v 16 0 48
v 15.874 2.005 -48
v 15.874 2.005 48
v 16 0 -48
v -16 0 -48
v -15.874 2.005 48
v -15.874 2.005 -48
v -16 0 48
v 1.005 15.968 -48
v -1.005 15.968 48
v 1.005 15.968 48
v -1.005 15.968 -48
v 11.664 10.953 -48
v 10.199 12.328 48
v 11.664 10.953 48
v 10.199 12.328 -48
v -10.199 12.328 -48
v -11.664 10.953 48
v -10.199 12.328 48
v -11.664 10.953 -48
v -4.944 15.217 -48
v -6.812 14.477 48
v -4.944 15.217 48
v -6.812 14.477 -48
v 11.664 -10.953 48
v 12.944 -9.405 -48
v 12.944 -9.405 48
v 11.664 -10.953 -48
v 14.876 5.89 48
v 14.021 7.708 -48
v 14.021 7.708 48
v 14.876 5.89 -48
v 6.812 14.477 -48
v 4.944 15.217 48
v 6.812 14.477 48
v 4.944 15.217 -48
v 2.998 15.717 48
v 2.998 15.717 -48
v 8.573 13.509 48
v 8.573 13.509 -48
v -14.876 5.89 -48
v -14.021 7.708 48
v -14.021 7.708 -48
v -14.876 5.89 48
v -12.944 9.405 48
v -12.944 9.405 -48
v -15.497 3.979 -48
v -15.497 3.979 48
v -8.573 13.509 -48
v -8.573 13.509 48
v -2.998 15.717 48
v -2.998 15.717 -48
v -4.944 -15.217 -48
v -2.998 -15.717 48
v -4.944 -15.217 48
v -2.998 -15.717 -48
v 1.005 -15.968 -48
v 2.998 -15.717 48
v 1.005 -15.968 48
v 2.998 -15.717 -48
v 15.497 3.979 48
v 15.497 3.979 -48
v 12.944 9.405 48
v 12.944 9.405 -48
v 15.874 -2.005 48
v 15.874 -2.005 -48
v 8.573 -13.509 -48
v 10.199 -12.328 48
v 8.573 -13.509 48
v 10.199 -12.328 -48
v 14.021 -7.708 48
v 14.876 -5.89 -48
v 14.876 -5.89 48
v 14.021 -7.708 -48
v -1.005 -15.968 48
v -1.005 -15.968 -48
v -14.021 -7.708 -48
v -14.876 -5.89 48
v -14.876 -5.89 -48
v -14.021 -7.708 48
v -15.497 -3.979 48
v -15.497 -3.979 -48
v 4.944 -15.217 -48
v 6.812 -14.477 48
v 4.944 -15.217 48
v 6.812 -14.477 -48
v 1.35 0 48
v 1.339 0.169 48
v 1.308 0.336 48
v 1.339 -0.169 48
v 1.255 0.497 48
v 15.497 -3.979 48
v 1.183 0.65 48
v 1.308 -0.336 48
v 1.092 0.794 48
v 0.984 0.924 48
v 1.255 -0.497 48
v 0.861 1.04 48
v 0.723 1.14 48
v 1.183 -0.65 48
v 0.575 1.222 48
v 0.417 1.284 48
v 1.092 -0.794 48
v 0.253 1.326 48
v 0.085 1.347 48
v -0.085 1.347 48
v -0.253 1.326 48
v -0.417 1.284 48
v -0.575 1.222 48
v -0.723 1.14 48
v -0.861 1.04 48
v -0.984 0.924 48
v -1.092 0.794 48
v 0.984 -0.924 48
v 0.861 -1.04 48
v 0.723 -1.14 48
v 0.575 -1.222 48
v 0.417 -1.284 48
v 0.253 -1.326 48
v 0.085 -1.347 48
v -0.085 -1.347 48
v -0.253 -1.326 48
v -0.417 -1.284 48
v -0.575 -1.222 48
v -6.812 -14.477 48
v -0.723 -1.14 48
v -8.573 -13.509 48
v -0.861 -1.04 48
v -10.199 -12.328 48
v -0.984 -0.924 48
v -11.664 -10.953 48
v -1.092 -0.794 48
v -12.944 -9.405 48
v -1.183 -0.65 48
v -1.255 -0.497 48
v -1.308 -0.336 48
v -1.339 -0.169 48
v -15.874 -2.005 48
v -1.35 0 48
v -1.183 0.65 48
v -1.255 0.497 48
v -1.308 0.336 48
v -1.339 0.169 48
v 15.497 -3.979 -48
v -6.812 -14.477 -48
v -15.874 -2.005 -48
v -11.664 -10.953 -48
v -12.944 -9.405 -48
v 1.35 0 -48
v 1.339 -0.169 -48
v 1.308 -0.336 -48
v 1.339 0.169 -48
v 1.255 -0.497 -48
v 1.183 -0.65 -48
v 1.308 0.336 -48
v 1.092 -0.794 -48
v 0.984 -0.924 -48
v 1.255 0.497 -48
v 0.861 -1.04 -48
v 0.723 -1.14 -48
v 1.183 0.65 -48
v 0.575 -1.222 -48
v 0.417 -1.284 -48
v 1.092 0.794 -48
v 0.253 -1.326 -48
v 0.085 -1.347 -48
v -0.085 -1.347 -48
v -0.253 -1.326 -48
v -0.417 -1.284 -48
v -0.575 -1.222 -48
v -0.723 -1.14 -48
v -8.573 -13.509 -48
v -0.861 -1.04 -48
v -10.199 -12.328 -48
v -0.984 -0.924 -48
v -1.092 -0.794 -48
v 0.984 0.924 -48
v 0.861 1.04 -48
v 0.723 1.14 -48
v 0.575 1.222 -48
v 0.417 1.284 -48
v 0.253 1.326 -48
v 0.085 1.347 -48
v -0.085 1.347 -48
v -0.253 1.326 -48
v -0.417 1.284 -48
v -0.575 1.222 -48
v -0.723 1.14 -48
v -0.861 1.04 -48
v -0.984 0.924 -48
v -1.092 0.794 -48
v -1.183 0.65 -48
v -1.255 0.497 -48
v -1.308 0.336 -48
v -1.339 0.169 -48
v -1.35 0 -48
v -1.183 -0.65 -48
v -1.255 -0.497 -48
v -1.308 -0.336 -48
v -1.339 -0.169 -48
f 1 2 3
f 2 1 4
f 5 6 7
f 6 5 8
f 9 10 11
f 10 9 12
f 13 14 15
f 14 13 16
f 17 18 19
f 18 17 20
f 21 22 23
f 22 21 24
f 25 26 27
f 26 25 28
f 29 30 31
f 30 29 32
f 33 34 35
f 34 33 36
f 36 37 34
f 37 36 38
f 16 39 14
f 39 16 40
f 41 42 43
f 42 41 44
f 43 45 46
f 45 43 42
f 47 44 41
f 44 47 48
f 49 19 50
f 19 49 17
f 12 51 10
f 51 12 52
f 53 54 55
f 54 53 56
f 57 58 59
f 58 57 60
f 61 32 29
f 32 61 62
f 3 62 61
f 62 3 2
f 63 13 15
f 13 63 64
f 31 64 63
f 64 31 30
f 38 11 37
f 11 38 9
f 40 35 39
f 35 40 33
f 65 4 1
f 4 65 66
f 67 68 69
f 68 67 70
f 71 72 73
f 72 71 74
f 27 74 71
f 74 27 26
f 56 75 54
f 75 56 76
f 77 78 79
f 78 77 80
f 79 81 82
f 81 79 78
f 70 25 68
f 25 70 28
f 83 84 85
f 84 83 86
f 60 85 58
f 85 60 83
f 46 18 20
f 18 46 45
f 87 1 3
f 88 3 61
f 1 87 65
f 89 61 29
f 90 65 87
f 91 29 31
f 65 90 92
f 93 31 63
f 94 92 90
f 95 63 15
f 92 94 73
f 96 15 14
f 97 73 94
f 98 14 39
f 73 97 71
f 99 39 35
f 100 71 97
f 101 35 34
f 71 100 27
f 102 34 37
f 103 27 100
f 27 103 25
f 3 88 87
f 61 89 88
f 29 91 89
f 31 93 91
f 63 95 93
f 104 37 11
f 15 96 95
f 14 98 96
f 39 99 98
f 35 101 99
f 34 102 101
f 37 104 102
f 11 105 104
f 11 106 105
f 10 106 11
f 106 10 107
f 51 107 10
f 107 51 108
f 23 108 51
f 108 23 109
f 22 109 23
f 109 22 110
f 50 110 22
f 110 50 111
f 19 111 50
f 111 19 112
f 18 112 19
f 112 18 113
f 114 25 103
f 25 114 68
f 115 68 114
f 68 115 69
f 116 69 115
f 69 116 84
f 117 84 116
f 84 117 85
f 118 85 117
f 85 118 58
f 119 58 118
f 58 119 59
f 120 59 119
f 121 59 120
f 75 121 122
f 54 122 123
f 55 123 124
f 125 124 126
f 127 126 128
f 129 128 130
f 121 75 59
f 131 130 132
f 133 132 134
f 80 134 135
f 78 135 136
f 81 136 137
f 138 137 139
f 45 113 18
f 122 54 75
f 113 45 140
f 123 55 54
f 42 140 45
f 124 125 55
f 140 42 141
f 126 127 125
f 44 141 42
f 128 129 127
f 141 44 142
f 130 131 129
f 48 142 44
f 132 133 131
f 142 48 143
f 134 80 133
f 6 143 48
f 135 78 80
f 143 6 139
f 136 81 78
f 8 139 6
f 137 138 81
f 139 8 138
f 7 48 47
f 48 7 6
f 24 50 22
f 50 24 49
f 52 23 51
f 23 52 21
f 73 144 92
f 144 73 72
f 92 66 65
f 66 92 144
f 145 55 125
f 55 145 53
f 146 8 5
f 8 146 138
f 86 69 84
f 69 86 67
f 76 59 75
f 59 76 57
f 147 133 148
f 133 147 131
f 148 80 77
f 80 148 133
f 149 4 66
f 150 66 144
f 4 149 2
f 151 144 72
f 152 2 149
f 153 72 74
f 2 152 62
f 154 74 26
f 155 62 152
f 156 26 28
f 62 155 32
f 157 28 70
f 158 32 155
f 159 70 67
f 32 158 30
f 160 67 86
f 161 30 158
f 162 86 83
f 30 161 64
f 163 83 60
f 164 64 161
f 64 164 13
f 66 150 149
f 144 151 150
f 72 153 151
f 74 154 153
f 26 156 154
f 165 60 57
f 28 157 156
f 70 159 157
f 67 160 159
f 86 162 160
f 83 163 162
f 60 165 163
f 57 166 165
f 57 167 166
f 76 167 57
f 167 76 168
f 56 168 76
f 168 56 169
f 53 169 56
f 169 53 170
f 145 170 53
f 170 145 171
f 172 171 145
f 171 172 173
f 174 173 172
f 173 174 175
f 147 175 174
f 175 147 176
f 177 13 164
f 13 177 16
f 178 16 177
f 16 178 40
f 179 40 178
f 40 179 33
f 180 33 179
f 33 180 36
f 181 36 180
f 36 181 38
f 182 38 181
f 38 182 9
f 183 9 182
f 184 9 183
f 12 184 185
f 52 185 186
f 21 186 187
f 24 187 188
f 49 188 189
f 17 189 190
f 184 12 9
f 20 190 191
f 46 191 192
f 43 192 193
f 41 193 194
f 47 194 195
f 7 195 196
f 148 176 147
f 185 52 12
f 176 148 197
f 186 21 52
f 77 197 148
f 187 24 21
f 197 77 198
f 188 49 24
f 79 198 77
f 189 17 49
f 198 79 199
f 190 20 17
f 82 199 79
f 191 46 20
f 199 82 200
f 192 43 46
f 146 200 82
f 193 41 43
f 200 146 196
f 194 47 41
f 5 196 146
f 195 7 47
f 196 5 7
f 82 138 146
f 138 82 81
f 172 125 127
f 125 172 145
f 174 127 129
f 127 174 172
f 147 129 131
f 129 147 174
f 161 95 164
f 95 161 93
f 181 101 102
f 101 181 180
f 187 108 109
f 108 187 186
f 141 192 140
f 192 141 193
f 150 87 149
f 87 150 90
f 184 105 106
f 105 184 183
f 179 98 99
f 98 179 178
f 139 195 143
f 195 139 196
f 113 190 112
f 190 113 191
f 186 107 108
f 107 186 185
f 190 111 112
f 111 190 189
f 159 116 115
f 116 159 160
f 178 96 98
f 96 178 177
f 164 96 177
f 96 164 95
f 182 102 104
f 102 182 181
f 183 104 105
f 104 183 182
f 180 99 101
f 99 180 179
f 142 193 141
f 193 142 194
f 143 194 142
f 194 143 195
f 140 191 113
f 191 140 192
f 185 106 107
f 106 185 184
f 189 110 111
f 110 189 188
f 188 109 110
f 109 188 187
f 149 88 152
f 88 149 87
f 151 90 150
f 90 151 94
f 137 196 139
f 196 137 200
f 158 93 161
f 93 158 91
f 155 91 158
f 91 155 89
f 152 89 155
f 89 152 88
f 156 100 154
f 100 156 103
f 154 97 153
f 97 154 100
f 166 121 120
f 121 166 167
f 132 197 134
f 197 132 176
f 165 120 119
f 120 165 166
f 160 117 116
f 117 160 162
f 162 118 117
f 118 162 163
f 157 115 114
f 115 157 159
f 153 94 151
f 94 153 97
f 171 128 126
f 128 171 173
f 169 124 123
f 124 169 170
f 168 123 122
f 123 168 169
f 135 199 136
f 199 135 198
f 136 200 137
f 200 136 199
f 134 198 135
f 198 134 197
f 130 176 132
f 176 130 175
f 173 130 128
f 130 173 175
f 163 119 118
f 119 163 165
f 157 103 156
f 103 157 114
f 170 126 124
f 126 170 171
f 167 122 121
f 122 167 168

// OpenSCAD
$fn = 50;


difference() {
	union() {
		translate(v = [0, 0, -48.0000000000]) {
			cylinder(h = 96, r = 16.0000000000);
		}
	}
	union() {
		translate(v = [0, 0, -100.0000000000]) {
			cylinder(h = 200, r = 1.3500000000);
		}
	}
}
